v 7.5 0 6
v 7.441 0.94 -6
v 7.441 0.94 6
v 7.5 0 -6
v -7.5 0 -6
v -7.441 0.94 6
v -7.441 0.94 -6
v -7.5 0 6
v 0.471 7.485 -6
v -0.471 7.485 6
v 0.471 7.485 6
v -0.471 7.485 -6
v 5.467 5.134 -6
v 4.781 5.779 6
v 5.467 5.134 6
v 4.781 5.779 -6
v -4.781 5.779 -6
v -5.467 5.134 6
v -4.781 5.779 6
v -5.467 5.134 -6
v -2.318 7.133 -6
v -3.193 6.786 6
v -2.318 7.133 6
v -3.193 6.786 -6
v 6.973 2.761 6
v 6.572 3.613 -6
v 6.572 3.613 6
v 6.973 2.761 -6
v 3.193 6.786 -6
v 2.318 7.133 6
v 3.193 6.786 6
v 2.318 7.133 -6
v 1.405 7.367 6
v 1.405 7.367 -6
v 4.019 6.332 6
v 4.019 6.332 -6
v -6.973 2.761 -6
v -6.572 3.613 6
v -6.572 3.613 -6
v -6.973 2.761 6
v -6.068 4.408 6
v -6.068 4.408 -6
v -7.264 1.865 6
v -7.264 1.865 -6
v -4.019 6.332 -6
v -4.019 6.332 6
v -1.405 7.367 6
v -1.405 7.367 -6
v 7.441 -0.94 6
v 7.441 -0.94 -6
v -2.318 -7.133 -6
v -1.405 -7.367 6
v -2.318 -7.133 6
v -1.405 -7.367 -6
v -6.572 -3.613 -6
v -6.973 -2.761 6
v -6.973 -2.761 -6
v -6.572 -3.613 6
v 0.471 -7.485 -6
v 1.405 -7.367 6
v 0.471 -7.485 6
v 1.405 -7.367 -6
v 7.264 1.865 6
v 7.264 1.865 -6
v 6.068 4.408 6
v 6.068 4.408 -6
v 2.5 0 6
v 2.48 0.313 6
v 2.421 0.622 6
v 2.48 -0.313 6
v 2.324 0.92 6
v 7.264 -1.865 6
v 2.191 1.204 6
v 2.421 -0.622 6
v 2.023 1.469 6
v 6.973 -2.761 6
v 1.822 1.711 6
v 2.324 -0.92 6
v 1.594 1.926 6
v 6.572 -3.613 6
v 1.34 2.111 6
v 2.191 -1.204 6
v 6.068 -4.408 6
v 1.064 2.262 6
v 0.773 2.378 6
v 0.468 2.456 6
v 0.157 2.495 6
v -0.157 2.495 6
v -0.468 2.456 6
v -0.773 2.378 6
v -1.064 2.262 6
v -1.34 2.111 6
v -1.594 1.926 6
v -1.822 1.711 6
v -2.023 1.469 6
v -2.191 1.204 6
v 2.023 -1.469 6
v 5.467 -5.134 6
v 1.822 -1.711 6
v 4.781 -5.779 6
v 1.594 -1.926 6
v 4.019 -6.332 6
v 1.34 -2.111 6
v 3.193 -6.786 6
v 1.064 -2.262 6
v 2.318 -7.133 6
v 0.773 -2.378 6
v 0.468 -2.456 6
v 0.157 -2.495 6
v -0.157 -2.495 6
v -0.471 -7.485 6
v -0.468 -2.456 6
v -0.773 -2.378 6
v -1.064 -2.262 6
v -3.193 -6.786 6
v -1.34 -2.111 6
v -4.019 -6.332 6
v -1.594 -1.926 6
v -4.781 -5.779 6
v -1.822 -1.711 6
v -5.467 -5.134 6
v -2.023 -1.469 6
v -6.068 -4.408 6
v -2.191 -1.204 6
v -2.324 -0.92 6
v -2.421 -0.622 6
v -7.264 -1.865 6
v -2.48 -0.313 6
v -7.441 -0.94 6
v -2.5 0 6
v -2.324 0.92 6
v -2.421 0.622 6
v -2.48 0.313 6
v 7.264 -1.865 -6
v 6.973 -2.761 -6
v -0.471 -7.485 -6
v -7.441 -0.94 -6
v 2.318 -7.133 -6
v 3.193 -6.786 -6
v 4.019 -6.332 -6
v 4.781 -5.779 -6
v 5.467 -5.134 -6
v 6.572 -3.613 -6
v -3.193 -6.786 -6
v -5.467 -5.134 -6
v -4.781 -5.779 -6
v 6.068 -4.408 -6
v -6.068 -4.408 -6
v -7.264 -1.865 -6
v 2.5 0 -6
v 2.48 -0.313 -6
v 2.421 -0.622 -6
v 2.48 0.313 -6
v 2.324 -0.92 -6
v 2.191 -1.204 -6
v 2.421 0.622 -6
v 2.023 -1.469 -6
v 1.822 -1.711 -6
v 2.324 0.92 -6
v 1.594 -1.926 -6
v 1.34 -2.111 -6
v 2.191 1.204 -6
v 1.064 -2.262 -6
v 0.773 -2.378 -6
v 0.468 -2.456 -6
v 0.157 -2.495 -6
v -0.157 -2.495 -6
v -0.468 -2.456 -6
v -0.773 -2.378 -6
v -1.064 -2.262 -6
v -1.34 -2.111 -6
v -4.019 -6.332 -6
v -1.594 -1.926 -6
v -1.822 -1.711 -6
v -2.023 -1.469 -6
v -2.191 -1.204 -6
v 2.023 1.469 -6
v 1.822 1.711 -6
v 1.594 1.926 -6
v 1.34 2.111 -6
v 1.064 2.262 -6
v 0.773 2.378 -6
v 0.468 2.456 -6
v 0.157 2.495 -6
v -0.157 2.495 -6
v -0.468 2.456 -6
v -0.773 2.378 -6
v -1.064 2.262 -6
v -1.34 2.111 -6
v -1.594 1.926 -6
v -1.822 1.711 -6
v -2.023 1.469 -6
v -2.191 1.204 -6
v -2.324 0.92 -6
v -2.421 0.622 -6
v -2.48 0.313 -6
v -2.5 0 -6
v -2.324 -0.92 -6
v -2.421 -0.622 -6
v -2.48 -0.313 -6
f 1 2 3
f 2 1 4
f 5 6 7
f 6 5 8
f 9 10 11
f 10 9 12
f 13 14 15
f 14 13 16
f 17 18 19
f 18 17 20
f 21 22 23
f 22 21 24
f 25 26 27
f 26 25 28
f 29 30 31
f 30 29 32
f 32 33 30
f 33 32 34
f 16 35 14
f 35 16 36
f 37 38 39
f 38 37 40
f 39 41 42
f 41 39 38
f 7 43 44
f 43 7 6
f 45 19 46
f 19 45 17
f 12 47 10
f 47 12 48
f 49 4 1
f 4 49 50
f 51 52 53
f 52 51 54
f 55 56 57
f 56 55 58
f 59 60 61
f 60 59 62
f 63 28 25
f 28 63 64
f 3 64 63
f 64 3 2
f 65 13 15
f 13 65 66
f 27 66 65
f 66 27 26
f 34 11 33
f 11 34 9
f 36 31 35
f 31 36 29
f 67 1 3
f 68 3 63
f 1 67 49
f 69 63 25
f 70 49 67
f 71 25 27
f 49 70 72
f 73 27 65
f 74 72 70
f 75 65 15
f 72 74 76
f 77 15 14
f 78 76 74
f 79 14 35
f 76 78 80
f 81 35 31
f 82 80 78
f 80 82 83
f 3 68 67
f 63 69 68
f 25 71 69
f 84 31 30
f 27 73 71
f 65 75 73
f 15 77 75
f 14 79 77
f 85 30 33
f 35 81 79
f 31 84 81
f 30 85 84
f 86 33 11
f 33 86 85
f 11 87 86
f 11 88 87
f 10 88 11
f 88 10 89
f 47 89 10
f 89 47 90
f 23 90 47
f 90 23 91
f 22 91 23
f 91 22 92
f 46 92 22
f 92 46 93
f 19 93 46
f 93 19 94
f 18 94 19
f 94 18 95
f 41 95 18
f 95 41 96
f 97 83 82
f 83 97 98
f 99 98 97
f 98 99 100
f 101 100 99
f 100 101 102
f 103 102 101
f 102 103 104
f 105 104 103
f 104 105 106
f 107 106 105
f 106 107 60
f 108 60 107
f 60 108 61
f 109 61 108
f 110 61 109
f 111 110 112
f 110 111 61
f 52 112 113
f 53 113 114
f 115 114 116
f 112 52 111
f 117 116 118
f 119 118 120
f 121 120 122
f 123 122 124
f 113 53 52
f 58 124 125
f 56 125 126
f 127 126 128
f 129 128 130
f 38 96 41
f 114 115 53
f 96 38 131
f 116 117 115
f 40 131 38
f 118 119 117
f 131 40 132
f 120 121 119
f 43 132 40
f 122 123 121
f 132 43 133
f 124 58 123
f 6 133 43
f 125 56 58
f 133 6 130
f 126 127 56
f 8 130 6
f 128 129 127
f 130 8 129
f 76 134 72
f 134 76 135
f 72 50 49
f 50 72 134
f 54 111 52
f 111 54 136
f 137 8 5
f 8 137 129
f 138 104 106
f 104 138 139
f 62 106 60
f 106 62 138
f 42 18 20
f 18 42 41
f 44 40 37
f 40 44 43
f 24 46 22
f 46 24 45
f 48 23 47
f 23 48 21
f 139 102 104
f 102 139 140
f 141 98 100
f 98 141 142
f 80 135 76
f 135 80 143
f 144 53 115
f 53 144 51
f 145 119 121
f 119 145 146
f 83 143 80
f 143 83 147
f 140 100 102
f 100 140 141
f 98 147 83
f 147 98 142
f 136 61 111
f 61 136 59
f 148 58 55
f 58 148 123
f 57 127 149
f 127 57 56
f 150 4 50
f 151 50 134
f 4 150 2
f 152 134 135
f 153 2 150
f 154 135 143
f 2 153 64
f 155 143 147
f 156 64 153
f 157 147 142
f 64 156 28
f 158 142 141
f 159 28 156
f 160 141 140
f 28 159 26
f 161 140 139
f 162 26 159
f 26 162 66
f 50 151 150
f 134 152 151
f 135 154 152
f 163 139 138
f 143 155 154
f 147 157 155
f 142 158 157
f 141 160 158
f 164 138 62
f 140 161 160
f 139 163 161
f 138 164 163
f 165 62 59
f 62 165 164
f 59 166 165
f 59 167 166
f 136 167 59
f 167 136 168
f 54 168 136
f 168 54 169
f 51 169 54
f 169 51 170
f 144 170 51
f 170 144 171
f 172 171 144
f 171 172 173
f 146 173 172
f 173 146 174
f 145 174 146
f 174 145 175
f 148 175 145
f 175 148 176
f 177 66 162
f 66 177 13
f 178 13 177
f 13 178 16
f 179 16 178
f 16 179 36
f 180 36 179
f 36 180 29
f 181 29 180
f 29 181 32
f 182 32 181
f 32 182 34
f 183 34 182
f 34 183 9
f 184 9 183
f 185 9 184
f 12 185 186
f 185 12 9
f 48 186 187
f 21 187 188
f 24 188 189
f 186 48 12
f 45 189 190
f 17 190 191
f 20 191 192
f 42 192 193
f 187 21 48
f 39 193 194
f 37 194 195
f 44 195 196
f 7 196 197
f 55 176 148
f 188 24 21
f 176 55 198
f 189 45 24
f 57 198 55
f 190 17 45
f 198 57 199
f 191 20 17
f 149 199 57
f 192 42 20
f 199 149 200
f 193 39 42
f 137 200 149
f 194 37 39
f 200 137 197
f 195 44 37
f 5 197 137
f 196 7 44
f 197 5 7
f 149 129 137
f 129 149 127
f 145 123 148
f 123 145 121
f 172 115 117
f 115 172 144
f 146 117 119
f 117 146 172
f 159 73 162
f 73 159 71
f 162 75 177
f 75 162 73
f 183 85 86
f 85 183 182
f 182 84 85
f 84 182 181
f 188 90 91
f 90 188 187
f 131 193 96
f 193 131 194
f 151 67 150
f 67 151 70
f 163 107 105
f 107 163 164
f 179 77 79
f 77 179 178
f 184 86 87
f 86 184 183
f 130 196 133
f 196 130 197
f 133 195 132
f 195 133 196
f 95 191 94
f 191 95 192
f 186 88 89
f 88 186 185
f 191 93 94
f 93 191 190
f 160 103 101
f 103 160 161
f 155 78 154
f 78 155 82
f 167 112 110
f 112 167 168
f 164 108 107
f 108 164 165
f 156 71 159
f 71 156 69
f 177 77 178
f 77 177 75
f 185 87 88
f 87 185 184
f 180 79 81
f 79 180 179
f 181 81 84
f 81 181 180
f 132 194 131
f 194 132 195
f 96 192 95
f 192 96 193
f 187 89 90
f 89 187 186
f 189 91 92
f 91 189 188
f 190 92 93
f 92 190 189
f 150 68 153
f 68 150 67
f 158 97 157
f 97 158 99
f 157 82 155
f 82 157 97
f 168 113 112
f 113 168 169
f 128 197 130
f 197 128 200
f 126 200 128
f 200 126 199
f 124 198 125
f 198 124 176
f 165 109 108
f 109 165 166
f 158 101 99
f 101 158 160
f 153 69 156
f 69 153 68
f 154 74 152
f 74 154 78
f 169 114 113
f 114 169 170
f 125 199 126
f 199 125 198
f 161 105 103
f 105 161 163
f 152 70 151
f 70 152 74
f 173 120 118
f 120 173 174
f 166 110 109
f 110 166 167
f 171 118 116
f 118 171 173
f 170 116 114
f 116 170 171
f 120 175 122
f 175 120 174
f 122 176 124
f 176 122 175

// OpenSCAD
$fn = 50;


difference() {
	union() {
		translate(v = [0, 0, -6.0000000000]) {
			cylinder(h = 12, r = 7.5000000000);
		}
	}
	union() {
		translate(v = [0, 0, -100.0000000000]) {
			cylinder(h = 200, r = 2.5000000000);
		}
	}
}
